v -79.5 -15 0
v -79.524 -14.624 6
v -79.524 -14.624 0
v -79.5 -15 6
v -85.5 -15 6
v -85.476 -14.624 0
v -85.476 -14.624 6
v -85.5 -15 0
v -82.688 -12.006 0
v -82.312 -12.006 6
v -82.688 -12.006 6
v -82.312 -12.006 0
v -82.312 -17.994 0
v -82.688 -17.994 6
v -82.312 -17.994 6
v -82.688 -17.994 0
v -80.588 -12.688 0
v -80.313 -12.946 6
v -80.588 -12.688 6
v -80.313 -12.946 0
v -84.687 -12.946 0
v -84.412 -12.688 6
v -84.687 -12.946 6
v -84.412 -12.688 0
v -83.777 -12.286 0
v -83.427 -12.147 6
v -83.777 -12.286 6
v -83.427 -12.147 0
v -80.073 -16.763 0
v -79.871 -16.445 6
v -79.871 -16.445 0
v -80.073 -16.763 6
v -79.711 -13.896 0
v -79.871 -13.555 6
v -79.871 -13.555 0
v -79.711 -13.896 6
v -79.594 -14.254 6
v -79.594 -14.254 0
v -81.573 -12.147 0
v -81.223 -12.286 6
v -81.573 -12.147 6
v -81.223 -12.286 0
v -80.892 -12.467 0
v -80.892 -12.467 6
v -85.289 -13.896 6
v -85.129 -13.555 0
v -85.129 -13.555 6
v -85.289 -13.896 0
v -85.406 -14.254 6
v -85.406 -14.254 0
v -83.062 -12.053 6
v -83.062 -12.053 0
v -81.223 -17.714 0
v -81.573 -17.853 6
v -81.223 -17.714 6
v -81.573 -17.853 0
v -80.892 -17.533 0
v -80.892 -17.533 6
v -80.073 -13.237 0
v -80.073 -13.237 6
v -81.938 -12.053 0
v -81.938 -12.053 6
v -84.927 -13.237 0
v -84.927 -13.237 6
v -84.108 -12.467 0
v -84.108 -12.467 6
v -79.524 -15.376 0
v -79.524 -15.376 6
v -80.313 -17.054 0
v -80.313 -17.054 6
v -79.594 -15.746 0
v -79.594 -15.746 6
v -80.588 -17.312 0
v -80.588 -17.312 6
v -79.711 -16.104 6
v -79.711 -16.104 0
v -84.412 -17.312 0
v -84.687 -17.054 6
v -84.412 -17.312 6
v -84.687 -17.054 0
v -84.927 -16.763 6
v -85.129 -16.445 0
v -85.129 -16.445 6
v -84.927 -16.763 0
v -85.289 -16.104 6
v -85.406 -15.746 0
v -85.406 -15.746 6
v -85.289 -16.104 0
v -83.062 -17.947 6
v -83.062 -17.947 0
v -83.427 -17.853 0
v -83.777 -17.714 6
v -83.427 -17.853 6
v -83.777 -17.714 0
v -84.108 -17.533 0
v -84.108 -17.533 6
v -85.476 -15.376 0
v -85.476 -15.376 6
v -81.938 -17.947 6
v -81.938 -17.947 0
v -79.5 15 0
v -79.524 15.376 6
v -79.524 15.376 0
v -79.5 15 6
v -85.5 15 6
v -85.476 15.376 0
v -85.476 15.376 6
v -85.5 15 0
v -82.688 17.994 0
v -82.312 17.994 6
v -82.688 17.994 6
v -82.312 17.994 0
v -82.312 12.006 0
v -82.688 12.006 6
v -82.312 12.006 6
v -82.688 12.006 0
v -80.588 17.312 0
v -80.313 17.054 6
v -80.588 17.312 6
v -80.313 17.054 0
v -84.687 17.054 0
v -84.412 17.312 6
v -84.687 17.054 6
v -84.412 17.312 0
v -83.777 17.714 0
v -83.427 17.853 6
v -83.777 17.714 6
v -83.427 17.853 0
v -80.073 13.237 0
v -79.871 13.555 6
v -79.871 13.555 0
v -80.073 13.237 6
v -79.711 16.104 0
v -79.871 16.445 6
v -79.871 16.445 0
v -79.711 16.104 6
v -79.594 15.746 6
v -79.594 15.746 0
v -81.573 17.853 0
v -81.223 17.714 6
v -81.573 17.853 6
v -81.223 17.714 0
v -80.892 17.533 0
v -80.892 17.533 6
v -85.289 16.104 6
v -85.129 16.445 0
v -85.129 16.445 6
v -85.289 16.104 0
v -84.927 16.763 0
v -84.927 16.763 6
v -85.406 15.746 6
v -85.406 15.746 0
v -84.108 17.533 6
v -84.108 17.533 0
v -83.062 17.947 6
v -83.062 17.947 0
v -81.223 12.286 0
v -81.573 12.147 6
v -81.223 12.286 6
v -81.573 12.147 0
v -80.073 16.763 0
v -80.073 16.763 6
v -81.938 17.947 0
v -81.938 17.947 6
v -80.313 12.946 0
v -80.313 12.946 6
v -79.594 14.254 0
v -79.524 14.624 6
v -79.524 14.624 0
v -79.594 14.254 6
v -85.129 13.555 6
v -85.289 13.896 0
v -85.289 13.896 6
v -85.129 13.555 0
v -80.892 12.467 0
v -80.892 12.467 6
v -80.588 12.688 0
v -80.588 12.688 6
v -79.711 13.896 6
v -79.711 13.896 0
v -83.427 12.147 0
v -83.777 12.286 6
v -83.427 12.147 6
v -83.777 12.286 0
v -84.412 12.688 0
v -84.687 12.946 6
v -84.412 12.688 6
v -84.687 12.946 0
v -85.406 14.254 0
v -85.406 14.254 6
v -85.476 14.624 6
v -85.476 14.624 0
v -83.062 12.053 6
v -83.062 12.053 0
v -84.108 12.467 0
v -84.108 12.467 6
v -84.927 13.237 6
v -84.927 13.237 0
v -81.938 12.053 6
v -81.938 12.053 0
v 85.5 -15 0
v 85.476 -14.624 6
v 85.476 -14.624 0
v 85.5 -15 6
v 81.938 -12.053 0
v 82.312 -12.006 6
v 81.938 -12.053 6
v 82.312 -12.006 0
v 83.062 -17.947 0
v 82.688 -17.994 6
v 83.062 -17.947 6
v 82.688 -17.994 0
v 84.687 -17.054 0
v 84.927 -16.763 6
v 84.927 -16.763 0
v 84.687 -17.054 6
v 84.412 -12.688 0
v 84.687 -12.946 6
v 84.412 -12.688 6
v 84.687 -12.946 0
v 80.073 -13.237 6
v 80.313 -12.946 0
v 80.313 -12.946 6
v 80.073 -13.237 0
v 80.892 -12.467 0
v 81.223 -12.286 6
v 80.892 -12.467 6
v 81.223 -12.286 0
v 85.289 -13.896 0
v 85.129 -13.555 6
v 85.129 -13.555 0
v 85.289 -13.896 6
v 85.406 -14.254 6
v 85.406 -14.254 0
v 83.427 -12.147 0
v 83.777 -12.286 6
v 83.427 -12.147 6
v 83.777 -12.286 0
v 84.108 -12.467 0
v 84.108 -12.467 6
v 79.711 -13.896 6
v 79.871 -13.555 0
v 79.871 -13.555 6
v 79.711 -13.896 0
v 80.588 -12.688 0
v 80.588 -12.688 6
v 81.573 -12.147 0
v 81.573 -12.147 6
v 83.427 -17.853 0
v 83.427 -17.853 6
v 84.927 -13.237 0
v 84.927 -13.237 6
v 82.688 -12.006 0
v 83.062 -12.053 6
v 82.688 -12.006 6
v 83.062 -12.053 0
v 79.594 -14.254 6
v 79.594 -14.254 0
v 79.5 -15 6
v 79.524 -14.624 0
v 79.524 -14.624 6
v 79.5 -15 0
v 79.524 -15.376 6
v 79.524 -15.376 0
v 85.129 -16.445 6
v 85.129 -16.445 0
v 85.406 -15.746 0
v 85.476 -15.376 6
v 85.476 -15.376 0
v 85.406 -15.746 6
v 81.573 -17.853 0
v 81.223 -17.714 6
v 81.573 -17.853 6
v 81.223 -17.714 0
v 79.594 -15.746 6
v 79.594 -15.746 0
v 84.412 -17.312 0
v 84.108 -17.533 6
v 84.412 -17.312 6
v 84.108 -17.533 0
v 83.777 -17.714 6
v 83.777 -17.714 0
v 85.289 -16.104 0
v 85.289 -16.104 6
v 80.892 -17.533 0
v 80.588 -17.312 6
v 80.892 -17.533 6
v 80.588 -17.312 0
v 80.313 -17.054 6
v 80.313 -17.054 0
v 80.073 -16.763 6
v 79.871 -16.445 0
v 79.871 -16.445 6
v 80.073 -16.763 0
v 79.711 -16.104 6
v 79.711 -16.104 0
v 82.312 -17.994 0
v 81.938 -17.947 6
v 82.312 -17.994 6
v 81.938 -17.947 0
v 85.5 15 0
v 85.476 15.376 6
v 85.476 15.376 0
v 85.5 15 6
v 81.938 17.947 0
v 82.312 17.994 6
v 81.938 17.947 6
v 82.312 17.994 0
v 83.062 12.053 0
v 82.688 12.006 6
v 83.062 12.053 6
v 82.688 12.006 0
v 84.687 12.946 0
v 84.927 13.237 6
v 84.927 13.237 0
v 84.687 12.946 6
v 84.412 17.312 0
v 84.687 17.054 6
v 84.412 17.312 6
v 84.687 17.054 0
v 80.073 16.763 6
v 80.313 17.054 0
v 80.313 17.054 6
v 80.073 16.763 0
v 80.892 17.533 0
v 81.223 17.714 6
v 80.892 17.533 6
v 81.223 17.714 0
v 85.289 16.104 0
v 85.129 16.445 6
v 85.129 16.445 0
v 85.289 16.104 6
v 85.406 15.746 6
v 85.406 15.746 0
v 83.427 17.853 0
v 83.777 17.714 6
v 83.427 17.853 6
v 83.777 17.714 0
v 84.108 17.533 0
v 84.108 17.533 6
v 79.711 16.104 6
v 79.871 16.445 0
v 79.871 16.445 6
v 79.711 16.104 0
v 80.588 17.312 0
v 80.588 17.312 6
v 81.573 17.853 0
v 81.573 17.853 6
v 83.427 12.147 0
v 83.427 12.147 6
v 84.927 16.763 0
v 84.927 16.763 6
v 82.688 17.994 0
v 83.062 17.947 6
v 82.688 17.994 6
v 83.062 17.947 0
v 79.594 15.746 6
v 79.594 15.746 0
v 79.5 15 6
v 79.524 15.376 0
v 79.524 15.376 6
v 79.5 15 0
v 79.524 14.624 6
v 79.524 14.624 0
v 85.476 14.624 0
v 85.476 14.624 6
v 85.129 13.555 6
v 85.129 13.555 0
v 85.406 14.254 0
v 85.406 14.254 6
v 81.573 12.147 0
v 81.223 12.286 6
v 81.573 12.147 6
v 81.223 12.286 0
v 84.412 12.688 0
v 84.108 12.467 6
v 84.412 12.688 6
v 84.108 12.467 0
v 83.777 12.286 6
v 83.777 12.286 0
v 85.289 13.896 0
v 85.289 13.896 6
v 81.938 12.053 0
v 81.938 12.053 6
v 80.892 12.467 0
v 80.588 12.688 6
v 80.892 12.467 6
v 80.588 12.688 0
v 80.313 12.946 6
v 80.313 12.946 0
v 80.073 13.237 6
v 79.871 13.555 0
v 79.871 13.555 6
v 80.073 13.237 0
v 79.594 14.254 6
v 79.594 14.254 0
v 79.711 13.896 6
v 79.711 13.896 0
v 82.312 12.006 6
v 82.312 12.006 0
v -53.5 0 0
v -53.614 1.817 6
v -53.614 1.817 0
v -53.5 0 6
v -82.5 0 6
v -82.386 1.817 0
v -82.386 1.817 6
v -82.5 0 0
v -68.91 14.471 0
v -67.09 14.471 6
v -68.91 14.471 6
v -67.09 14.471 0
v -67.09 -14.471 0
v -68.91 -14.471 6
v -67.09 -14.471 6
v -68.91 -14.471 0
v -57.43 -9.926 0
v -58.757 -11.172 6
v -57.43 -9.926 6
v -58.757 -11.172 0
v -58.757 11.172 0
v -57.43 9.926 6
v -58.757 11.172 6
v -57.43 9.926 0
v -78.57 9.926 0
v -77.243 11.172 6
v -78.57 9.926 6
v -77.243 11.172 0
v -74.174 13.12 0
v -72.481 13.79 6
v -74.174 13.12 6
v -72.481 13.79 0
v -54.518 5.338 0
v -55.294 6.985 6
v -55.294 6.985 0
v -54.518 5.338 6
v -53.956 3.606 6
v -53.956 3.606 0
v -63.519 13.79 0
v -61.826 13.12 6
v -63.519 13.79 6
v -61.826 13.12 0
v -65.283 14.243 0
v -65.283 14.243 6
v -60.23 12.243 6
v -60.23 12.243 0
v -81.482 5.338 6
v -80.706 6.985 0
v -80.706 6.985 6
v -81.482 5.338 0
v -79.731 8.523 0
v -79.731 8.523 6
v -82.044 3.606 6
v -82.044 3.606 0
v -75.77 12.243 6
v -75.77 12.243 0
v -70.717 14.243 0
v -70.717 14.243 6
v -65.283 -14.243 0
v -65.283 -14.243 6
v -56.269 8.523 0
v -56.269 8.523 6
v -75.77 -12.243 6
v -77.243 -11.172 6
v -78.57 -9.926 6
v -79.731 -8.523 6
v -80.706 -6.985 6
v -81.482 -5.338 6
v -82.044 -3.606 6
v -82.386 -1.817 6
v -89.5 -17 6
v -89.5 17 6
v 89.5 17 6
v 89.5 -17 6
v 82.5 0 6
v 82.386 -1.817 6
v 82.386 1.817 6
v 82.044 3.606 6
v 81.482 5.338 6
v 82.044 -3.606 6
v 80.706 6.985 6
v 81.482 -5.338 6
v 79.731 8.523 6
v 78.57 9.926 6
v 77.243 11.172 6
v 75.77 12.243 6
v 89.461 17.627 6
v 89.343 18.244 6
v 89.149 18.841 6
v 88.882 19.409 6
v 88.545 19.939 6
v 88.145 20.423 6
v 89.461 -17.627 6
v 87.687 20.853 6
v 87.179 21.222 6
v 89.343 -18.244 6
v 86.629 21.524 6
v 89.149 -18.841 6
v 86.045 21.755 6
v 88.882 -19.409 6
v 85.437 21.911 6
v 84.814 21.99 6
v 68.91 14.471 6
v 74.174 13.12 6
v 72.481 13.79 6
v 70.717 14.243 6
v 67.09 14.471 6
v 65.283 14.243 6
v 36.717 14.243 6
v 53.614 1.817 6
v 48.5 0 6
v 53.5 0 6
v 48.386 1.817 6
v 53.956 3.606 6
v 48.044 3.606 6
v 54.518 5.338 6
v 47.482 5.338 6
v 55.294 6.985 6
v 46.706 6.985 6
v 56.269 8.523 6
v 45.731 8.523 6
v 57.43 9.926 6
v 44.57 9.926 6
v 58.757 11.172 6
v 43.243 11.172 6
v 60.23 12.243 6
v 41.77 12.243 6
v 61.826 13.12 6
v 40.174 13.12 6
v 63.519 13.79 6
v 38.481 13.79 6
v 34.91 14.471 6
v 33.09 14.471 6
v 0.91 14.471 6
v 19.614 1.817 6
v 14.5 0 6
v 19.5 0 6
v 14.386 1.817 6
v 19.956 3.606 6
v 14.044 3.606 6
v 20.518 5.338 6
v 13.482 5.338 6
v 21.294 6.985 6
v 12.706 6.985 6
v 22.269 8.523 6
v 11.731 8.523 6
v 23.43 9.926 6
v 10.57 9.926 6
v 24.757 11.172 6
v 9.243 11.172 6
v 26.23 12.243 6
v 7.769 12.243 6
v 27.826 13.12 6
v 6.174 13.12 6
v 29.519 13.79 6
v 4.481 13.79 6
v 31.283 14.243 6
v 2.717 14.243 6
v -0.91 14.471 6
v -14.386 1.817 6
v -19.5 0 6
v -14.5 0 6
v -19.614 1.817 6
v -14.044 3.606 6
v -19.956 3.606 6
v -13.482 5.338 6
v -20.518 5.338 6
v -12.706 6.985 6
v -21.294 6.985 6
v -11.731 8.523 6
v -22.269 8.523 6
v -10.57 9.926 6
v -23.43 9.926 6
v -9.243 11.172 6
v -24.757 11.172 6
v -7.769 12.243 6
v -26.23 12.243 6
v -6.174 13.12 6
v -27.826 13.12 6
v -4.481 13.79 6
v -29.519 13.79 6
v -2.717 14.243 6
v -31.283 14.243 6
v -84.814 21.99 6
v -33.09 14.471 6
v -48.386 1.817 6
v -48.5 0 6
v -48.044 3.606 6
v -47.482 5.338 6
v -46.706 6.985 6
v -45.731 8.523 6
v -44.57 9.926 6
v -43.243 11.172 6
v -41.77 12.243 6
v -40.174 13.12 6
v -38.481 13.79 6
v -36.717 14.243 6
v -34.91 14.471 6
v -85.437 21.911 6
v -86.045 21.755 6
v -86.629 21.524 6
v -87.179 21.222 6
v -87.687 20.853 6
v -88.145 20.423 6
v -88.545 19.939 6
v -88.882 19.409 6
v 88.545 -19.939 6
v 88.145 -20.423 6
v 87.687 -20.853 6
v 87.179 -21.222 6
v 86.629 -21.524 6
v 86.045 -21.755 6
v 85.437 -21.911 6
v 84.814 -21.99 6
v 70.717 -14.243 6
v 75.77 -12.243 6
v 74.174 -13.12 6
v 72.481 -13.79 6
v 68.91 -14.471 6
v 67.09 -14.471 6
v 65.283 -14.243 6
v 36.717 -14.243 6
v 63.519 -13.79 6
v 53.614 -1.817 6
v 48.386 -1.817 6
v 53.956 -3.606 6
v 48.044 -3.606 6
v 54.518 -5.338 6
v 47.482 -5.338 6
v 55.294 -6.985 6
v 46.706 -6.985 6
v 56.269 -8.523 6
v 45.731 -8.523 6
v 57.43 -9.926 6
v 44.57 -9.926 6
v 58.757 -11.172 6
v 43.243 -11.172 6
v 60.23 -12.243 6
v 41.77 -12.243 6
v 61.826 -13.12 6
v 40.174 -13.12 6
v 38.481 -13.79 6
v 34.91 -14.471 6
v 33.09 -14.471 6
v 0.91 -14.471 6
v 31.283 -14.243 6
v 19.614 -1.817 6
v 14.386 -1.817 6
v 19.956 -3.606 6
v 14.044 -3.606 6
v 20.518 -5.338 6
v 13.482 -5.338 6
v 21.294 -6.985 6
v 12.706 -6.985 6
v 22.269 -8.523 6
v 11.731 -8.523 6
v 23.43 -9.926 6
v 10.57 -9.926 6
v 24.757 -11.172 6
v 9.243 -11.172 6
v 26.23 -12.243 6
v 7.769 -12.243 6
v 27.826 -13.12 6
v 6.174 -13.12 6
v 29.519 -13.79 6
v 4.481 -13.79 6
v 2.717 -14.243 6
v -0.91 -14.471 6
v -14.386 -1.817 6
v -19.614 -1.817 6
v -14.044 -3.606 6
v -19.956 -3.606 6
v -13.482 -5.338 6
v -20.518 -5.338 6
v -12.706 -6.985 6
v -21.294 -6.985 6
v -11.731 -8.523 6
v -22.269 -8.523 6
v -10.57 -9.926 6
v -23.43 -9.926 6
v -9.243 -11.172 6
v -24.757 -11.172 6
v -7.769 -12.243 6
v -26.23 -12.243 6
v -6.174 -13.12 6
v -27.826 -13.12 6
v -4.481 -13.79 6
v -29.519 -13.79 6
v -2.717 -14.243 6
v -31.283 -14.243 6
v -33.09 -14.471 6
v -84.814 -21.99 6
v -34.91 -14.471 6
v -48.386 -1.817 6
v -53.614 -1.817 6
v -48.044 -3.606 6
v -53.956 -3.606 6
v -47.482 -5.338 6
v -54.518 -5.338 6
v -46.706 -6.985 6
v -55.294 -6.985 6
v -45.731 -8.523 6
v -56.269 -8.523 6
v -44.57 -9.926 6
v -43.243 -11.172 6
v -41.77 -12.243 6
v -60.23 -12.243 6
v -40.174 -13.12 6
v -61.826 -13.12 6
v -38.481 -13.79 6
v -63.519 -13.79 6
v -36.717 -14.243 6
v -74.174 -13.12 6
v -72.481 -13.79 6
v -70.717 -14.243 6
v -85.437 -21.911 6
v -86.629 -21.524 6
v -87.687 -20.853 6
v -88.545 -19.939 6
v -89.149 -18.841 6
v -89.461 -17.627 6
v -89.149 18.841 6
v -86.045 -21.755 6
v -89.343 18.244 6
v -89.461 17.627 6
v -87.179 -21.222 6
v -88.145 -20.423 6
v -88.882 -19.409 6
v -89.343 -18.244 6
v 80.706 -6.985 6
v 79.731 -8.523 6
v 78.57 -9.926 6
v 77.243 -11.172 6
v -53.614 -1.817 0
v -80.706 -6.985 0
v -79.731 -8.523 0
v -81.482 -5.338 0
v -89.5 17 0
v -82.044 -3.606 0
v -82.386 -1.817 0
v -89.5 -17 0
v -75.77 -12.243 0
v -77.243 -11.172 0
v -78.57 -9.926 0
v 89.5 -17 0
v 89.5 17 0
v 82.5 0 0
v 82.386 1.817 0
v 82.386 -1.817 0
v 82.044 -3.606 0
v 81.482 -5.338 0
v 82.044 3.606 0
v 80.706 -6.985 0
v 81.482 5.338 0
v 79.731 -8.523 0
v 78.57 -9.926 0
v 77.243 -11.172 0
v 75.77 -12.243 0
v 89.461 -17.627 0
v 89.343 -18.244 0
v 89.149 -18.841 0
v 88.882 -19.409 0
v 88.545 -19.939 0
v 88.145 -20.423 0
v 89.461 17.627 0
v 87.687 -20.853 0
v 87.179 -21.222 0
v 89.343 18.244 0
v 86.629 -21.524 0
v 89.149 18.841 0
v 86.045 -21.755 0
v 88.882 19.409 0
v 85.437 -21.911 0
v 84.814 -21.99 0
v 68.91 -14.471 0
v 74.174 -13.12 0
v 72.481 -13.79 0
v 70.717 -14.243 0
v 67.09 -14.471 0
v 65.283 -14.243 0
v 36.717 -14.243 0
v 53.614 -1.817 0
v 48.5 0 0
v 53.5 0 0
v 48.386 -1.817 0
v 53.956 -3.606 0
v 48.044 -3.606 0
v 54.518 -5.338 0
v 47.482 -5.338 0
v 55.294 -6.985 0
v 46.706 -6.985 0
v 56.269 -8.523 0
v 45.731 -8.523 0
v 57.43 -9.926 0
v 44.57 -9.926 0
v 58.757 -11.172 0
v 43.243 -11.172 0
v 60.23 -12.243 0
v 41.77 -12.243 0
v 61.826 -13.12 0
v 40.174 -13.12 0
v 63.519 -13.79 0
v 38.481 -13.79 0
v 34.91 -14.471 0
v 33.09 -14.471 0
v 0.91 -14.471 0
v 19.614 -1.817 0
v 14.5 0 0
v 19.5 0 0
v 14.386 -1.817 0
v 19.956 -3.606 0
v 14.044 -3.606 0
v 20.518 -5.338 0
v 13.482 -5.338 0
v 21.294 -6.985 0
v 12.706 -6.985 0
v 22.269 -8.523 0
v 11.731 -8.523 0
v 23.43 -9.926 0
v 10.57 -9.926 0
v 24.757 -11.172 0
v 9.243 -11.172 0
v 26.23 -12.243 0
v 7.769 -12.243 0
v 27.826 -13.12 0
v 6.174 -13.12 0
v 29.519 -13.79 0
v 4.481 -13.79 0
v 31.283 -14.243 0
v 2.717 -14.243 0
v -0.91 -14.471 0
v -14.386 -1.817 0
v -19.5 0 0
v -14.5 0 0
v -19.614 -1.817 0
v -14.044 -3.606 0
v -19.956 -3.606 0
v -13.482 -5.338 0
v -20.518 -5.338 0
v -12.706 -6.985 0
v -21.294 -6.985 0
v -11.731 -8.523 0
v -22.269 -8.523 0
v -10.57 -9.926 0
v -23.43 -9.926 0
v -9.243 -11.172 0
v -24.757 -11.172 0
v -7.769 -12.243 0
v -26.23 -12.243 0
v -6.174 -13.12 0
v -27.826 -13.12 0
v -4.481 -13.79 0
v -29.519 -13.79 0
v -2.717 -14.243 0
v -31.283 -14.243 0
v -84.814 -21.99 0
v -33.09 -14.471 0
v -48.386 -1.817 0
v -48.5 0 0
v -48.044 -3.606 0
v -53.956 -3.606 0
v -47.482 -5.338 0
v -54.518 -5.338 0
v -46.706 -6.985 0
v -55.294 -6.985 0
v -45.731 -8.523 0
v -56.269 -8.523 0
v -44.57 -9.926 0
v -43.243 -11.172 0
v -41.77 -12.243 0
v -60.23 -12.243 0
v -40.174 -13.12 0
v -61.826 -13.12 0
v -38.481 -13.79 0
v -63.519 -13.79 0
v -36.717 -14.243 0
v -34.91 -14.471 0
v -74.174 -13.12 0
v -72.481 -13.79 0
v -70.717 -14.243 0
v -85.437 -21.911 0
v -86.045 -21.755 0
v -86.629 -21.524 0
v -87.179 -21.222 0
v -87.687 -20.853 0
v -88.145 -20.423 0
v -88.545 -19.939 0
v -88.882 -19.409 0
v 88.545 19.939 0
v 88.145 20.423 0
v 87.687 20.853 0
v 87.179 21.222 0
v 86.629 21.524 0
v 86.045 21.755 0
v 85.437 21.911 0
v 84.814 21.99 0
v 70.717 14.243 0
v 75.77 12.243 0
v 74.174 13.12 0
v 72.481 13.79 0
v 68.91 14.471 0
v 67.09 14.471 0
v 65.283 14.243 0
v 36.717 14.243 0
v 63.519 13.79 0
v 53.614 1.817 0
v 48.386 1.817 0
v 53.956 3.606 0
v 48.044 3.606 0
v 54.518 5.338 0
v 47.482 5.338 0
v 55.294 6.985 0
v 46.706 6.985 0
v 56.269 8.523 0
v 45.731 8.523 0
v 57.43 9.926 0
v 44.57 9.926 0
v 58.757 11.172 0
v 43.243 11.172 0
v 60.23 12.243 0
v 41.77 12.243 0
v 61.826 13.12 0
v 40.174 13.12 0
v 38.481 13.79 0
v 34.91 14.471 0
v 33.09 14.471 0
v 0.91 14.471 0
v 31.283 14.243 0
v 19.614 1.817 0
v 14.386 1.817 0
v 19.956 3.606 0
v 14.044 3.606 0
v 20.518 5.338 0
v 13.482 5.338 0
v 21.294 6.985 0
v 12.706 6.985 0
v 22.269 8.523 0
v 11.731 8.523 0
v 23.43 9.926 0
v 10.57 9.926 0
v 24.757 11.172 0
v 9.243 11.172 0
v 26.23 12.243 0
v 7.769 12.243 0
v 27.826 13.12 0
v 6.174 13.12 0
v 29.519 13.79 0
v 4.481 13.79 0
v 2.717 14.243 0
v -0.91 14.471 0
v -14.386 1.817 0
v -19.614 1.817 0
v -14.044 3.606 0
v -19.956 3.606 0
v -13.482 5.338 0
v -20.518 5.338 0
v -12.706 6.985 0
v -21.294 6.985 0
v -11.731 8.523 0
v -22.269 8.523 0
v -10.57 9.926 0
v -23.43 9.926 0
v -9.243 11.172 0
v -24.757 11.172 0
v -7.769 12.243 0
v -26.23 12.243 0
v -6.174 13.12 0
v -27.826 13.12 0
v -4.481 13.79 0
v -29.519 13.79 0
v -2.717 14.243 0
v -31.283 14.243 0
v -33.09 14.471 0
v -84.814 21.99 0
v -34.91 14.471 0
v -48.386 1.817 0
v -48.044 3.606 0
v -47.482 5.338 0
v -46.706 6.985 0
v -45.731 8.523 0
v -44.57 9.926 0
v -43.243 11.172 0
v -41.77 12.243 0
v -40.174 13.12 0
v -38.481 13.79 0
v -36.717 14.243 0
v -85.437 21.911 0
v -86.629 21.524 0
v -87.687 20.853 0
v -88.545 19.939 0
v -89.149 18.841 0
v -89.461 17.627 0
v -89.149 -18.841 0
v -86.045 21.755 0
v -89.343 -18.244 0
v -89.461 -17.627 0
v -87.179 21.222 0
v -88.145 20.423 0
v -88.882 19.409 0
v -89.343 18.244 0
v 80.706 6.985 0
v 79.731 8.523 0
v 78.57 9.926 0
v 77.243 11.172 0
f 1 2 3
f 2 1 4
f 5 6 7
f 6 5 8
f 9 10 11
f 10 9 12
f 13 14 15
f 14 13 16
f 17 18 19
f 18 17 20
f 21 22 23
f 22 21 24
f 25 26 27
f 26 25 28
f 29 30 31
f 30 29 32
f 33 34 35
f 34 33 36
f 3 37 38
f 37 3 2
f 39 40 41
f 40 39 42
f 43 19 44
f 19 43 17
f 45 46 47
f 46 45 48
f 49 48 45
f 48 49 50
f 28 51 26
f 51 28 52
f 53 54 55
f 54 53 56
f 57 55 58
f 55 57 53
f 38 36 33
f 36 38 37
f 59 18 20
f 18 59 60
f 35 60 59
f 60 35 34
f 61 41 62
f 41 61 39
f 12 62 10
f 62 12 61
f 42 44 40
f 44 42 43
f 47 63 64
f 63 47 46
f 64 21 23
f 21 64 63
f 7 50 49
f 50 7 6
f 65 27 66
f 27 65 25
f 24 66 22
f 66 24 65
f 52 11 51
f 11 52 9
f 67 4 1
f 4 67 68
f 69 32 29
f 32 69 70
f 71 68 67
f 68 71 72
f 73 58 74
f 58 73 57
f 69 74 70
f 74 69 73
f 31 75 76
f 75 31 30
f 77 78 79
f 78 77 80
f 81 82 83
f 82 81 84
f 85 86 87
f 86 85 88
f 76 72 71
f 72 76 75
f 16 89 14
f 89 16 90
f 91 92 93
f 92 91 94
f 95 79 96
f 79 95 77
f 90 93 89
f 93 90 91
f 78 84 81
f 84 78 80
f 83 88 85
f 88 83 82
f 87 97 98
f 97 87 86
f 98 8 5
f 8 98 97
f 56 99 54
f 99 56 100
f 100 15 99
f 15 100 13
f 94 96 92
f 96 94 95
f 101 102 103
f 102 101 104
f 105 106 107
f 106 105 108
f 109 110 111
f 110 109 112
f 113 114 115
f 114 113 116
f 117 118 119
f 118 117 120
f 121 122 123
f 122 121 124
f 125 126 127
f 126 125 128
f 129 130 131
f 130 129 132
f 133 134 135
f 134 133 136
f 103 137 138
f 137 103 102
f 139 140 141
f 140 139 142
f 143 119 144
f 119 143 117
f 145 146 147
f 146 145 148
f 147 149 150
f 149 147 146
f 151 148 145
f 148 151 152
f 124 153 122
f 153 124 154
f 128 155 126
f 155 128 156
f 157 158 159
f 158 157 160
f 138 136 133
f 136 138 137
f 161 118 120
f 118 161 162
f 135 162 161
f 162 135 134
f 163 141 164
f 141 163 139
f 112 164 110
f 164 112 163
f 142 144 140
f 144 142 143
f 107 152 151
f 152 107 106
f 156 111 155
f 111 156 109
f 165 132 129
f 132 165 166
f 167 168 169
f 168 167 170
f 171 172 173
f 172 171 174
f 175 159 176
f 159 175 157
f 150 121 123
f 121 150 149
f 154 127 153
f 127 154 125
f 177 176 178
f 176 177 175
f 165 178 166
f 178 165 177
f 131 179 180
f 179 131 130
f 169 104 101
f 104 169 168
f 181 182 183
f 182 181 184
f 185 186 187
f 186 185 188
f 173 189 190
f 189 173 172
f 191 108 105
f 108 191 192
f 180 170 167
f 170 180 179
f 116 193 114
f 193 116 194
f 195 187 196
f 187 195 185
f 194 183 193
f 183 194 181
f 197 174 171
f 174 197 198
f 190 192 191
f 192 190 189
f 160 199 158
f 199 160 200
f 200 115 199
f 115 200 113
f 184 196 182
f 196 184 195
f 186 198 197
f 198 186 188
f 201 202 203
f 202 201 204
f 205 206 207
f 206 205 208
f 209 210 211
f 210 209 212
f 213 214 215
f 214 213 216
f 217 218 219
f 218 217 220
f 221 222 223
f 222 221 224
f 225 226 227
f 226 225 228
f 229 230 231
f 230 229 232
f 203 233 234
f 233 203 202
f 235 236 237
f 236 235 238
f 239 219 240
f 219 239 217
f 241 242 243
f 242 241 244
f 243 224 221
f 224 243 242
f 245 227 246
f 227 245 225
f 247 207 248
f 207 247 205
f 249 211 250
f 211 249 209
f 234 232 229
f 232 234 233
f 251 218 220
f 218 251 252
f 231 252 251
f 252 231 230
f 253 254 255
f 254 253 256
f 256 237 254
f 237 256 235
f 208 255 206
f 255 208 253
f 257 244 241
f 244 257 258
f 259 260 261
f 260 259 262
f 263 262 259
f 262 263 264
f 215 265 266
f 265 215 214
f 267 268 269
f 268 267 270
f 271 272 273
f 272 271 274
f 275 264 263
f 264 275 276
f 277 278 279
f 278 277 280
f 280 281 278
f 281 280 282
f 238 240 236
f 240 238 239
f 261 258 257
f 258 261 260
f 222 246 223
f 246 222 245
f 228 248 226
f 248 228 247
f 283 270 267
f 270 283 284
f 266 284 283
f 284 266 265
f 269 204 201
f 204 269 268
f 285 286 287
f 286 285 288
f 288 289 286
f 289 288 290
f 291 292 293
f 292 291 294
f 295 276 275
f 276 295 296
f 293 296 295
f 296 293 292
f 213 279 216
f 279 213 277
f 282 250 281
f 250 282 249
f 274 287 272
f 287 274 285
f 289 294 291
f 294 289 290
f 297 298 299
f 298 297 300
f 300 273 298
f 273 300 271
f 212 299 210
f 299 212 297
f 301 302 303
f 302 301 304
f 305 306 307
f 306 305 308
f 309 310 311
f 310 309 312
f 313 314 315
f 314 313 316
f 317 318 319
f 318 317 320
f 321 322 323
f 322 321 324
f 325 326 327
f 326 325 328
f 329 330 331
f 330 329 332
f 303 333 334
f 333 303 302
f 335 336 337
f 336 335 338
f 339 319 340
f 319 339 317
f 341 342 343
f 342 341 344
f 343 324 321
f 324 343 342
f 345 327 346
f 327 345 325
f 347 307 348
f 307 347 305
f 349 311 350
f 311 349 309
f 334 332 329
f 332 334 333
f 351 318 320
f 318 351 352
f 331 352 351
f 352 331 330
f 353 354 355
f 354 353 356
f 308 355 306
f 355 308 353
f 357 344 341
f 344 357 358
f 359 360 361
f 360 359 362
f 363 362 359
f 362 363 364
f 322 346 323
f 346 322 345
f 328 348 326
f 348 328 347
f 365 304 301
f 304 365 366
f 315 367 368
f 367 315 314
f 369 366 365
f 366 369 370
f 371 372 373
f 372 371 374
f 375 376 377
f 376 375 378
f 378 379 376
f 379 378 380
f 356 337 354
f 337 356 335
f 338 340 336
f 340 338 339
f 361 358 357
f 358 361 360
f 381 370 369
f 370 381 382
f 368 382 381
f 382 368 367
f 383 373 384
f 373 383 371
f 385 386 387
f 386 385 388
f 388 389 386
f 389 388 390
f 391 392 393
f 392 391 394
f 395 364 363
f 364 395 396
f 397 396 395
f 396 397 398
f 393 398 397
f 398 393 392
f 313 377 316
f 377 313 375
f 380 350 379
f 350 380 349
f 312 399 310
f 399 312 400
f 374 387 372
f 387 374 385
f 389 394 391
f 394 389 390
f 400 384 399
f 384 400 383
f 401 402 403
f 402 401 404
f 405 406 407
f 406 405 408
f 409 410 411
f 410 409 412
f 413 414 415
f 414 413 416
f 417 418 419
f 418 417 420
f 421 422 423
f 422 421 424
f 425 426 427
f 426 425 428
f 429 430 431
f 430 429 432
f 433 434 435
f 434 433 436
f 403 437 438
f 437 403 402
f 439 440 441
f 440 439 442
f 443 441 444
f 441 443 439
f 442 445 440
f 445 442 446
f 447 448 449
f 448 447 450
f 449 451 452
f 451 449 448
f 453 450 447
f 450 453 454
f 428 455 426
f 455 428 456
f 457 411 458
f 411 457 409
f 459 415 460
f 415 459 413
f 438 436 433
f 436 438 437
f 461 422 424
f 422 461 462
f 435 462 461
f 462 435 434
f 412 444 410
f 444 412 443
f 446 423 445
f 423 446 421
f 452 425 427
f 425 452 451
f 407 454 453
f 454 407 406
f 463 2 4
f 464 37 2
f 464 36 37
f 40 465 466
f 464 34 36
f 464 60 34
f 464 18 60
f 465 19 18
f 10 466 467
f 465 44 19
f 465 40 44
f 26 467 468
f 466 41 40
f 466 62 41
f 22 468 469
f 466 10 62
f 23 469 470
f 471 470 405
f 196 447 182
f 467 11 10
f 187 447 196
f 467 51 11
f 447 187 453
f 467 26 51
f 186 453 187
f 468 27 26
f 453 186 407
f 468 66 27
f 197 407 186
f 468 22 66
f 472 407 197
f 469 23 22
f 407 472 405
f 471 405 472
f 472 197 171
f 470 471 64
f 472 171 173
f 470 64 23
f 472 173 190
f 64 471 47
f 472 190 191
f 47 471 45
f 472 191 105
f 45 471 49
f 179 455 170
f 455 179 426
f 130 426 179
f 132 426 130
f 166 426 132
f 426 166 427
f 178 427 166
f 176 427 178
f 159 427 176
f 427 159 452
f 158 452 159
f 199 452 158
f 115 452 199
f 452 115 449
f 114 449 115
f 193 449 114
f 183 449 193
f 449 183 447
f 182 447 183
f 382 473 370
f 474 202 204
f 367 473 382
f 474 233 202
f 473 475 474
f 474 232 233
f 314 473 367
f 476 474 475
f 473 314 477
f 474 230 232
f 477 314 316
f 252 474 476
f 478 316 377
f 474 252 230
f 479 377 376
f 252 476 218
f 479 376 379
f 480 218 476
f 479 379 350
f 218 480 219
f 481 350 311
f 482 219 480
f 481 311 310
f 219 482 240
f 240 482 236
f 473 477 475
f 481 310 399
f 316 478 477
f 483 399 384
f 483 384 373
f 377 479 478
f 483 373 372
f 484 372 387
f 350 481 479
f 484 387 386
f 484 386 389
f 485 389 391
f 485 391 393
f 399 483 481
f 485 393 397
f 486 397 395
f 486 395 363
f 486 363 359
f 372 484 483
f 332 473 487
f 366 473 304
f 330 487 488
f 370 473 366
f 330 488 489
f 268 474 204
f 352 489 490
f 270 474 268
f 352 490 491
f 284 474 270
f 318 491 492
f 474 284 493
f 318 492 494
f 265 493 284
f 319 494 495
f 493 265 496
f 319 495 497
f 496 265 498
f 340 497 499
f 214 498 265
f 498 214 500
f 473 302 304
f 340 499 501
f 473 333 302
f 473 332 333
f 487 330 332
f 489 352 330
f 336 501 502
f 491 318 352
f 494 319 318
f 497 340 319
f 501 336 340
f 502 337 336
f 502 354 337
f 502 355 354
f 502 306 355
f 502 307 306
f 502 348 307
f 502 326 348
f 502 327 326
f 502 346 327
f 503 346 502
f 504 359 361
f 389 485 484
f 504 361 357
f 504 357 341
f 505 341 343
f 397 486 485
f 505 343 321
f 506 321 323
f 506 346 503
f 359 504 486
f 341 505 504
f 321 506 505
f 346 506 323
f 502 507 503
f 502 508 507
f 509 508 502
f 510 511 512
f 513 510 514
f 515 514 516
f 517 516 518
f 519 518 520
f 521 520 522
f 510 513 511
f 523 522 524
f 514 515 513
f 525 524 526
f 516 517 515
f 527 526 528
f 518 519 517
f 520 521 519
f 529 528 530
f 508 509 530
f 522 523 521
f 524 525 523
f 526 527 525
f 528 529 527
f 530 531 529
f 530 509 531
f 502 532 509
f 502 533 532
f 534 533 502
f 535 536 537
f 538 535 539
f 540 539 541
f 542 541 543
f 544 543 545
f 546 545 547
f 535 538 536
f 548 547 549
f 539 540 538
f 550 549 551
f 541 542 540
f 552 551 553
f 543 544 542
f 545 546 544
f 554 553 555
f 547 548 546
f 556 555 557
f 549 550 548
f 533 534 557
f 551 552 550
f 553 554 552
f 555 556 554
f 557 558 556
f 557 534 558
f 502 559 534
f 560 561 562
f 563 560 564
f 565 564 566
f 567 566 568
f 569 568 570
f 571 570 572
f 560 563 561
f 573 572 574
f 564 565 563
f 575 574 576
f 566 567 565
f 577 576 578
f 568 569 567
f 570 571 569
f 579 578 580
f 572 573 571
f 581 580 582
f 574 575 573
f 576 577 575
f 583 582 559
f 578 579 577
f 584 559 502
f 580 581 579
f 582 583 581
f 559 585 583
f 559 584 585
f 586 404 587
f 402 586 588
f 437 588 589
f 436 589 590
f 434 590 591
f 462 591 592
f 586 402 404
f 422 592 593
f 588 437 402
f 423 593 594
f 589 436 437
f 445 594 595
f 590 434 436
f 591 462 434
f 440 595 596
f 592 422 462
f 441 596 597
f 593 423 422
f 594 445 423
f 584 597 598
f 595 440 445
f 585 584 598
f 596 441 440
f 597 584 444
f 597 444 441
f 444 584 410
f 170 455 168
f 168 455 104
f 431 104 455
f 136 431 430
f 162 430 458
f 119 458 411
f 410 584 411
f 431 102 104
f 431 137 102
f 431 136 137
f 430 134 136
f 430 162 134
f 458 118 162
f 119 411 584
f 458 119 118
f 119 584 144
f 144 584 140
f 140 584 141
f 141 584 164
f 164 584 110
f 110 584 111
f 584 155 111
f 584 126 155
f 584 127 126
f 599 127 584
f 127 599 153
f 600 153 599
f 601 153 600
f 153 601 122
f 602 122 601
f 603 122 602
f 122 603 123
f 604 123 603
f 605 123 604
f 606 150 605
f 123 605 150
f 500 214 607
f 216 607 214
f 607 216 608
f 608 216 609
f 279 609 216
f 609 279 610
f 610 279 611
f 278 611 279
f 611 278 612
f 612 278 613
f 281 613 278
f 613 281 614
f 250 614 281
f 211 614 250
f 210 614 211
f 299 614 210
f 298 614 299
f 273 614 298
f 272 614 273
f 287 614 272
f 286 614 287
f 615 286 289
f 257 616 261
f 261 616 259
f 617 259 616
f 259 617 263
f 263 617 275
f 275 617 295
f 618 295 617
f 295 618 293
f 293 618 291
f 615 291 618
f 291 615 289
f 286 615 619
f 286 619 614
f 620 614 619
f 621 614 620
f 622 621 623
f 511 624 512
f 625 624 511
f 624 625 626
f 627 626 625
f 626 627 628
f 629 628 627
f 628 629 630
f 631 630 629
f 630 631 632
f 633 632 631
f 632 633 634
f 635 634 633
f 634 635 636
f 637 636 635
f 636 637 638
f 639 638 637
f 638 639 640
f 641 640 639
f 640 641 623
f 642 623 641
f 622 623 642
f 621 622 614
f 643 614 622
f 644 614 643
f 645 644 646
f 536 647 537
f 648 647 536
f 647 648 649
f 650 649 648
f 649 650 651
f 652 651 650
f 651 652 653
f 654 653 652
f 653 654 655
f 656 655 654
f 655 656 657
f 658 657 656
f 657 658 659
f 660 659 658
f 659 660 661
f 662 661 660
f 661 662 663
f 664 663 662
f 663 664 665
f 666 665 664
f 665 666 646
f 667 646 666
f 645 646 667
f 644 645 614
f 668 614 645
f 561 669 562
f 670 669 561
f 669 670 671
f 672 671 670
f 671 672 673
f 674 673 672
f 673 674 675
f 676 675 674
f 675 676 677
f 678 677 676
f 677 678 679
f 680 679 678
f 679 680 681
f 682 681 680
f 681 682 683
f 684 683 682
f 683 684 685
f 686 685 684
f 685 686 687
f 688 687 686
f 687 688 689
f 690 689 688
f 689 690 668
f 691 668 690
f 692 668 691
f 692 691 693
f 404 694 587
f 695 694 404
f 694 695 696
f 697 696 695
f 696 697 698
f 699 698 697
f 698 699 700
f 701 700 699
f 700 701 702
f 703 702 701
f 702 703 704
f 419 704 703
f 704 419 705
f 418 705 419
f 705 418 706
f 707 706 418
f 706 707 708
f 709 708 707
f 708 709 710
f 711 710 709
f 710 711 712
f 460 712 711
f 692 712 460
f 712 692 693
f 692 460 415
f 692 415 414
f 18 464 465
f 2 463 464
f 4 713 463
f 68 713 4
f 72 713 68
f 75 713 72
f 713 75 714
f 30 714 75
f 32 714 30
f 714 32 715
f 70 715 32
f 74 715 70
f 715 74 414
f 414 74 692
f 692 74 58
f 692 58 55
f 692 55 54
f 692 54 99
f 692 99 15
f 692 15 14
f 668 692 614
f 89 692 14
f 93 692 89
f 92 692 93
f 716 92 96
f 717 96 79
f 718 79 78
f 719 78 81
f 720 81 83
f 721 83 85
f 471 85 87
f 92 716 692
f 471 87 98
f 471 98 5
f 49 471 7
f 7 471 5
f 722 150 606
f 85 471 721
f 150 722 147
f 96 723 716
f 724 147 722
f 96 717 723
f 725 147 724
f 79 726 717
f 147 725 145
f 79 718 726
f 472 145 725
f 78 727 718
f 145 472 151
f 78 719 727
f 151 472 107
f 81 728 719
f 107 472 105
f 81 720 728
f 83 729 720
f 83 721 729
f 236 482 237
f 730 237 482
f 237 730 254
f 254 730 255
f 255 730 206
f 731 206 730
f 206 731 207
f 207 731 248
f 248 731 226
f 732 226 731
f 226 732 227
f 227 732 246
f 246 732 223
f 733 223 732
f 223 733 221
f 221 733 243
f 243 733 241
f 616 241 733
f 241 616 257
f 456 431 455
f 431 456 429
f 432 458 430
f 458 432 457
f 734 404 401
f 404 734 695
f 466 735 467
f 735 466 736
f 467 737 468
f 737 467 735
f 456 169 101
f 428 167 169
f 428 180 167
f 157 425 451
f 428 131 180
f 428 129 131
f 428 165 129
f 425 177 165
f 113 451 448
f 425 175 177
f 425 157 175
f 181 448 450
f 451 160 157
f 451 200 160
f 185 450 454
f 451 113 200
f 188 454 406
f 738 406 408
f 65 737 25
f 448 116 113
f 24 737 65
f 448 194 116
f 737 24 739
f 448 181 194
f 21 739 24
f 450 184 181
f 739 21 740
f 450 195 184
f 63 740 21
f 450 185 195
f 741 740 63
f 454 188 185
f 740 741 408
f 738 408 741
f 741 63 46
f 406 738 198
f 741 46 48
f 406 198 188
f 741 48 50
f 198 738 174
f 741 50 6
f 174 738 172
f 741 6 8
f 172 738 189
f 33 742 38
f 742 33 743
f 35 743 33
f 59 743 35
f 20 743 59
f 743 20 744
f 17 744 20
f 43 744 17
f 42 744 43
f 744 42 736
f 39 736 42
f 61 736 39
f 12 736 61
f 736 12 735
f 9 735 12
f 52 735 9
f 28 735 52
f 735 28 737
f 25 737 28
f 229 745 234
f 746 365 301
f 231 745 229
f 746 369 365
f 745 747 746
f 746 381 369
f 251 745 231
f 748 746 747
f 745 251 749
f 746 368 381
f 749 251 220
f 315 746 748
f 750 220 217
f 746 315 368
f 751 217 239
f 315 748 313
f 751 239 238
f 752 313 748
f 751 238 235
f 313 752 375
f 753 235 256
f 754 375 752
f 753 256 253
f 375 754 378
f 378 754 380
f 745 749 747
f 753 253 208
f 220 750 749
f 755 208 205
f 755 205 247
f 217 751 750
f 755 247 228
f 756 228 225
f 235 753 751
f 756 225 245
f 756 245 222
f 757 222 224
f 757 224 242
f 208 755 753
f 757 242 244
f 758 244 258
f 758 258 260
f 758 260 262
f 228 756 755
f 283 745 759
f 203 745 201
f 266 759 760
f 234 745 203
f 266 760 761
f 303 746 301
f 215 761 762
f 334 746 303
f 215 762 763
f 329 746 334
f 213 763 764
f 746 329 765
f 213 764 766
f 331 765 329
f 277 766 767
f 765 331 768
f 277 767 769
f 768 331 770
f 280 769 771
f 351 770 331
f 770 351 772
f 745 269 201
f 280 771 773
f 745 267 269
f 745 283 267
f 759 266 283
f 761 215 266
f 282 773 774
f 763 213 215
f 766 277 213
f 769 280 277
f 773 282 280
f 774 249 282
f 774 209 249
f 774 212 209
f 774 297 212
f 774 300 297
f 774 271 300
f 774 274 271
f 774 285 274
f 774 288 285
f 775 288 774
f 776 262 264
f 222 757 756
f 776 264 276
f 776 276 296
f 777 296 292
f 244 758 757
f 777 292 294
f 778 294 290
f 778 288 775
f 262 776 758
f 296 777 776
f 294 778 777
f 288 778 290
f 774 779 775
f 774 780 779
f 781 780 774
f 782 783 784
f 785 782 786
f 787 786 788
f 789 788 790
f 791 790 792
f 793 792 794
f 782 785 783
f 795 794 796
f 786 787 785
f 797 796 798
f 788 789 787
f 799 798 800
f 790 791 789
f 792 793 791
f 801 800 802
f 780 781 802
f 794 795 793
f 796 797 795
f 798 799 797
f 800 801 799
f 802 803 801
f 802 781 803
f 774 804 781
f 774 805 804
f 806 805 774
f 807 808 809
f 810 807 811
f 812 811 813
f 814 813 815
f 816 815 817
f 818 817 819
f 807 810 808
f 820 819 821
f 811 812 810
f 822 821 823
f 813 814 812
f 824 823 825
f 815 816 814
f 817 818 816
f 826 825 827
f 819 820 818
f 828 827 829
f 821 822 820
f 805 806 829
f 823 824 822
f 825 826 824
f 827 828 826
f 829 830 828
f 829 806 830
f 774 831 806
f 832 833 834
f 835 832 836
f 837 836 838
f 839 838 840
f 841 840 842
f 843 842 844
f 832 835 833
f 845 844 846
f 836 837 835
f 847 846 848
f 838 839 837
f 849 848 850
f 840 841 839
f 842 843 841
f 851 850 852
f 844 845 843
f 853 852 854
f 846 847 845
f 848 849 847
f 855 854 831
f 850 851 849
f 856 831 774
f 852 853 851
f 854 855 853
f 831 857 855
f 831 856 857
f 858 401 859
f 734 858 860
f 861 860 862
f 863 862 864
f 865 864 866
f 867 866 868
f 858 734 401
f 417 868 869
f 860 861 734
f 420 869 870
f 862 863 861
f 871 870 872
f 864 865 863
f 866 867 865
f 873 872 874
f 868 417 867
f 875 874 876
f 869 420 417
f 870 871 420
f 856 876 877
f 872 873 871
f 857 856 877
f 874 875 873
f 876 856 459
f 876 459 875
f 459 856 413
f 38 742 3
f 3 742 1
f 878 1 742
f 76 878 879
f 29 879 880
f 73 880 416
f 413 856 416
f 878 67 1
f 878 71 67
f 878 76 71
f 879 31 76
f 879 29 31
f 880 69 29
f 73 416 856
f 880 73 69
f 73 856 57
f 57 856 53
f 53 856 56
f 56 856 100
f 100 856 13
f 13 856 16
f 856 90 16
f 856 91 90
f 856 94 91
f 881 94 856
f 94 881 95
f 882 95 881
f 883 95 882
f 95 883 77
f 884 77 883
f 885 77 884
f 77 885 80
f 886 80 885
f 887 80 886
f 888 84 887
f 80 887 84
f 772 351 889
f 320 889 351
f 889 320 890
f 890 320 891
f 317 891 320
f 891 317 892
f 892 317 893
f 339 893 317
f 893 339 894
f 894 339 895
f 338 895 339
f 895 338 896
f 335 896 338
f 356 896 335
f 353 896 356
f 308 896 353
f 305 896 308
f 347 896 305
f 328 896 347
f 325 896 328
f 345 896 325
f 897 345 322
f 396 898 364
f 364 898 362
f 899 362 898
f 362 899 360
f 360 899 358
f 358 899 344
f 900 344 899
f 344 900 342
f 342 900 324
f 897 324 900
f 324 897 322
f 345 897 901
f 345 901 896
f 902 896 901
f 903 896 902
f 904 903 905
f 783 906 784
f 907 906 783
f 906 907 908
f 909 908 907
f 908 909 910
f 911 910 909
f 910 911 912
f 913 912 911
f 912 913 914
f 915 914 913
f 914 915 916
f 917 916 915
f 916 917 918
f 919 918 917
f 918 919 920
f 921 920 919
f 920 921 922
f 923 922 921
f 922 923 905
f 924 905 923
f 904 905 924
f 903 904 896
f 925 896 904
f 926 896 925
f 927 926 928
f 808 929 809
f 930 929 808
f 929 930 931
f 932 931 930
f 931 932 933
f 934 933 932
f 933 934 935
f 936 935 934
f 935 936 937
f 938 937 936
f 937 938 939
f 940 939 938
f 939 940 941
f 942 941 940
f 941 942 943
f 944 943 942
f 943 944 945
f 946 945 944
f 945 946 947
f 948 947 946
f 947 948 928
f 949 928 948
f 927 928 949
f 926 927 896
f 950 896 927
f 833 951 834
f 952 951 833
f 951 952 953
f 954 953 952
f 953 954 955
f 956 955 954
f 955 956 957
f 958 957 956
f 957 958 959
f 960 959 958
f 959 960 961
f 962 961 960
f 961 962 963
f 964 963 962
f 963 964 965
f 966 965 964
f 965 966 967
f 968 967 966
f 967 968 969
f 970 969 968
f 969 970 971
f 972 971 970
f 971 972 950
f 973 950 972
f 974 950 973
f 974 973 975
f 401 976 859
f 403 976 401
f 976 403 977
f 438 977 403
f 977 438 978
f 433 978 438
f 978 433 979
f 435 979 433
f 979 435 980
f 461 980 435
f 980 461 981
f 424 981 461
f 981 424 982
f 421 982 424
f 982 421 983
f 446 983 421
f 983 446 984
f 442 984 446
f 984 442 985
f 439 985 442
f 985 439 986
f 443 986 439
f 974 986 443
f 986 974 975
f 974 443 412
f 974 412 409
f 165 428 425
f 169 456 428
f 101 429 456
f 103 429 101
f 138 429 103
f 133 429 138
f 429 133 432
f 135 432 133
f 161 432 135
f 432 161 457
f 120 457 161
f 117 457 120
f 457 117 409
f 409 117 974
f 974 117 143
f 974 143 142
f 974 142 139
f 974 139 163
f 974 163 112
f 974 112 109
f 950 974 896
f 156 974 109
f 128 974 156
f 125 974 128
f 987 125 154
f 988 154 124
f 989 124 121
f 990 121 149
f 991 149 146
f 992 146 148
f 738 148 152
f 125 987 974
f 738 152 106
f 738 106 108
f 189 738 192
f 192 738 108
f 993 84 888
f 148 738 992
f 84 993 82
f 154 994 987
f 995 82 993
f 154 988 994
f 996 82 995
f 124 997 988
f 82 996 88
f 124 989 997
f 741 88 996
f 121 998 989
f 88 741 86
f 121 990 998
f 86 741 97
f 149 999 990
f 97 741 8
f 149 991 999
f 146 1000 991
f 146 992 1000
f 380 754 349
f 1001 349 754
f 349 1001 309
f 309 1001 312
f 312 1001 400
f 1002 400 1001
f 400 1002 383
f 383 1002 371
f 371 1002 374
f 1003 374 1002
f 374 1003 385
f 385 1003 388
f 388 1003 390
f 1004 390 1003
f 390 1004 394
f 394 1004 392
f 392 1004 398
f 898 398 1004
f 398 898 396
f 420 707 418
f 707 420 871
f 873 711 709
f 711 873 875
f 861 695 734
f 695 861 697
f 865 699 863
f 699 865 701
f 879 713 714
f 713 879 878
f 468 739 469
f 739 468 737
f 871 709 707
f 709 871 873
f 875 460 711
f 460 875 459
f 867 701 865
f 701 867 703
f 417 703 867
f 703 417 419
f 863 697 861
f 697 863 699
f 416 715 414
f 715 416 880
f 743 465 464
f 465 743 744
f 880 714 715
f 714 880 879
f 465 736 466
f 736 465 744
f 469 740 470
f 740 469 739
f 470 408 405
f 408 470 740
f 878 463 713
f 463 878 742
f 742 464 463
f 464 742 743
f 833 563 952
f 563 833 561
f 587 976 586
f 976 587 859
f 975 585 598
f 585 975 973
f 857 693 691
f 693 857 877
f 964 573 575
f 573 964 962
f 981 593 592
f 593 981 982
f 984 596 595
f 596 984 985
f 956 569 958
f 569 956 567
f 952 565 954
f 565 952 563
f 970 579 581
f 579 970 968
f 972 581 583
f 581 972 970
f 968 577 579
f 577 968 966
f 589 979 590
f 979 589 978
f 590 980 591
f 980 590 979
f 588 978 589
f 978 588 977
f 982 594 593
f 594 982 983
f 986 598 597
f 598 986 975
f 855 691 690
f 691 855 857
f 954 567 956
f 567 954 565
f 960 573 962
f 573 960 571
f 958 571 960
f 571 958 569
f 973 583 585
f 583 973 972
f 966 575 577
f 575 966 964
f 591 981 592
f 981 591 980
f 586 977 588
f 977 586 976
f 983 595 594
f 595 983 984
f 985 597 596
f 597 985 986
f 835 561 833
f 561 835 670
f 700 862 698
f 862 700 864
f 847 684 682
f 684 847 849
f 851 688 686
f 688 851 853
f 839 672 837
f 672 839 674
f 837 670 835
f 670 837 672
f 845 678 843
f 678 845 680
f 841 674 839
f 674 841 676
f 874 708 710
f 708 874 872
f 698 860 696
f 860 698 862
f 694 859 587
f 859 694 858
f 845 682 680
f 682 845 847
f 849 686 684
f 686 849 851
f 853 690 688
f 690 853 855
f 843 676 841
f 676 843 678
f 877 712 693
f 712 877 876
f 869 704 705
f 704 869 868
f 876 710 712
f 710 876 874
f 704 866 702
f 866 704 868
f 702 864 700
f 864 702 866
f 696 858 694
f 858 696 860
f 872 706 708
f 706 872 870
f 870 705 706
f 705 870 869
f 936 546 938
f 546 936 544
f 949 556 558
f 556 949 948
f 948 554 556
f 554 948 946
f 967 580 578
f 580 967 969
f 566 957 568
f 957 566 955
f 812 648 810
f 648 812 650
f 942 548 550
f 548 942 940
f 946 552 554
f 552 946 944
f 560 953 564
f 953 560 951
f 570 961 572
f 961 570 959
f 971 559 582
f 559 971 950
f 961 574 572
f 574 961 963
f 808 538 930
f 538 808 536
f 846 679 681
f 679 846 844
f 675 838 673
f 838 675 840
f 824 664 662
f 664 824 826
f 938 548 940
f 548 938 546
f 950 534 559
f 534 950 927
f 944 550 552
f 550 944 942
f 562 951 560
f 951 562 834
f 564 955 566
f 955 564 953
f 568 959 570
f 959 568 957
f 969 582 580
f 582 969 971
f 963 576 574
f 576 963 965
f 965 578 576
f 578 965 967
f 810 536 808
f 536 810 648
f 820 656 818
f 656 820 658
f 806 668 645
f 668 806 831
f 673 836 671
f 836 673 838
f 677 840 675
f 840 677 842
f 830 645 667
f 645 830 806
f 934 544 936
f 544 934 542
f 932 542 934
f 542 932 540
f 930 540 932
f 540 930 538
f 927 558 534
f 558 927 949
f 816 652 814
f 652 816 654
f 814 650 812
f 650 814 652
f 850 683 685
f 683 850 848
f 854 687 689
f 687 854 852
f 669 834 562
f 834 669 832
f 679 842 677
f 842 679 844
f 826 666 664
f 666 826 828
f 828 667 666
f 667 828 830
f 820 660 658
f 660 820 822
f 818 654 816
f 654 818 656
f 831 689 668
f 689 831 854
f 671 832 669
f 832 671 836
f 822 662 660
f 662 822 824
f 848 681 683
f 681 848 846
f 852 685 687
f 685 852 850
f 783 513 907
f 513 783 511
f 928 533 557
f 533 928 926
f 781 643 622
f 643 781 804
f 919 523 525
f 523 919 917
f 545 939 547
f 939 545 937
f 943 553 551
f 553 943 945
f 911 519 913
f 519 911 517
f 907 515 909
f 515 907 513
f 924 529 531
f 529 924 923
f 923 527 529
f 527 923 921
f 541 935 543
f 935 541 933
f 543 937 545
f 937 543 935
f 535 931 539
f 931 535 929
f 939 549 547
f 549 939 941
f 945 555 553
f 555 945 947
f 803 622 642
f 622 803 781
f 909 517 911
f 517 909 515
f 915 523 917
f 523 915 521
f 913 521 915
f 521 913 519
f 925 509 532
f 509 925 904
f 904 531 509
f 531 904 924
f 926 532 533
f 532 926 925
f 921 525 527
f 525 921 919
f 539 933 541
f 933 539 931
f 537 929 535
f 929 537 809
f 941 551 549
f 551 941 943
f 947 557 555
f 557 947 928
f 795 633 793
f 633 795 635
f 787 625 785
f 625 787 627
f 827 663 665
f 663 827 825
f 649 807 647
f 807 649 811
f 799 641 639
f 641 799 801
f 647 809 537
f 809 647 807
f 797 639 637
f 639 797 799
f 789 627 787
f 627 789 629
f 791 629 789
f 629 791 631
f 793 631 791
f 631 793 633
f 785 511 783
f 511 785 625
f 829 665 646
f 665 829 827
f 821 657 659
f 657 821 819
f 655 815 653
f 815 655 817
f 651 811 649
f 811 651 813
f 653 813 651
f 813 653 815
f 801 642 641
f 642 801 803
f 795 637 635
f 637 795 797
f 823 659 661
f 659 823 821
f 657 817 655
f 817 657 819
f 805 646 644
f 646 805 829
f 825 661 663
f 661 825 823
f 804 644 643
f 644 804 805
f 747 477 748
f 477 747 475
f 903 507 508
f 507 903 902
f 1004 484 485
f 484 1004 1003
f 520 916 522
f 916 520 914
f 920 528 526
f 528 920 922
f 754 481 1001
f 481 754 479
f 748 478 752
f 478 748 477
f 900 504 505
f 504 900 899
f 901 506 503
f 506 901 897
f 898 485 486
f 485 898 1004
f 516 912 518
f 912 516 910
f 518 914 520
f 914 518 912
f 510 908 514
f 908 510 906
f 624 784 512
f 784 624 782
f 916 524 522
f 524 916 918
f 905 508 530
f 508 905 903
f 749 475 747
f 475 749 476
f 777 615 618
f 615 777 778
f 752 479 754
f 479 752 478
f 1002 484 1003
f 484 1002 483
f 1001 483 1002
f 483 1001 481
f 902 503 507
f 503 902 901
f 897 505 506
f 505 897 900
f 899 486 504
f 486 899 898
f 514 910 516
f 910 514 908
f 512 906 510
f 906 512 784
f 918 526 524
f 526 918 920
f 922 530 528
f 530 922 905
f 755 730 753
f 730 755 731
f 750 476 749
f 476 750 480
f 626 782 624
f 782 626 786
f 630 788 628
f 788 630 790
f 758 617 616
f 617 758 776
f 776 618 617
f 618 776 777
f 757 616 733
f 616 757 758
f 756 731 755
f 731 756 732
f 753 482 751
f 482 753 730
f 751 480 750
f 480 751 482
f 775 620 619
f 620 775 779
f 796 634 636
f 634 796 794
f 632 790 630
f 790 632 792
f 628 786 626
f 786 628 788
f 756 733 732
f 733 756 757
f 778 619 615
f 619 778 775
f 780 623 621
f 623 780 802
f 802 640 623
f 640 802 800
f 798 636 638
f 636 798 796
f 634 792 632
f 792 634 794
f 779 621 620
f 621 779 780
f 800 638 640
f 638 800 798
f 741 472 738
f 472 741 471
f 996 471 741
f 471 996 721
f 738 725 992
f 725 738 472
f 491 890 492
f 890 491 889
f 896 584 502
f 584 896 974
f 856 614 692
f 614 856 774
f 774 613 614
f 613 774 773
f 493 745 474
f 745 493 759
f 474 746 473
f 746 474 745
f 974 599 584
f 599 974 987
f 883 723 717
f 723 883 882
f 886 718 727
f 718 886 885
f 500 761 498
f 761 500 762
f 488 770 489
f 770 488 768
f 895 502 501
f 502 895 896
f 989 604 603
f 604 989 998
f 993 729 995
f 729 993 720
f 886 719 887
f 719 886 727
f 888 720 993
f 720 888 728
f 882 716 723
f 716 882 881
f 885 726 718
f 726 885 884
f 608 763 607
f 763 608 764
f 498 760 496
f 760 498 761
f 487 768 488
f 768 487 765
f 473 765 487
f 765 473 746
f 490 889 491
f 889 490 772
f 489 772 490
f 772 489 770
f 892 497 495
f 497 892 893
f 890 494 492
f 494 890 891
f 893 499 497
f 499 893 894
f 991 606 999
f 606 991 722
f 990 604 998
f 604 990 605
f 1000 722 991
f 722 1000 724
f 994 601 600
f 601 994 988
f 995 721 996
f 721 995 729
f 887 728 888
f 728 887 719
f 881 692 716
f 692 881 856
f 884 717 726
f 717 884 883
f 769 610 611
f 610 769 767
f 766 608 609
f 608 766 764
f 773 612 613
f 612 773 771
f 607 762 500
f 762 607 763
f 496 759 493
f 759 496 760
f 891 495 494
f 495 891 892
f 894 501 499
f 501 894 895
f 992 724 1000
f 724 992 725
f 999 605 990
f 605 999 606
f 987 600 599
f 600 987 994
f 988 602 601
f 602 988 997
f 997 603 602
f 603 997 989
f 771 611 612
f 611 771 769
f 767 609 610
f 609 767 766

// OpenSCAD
$fn = 50;


difference() {
	union() {
		hull() {
			translate(v = [-84.5000000000, 17.0000000000, 0]) {
				cylinder(h = 6, r = 5);
			}
			translate(v = [84.5000000000, 17.0000000000, 0]) {
				cylinder(h = 6, r = 5);
			}
			translate(v = [-84.5000000000, -17.0000000000, 0]) {
				cylinder(h = 6, r = 5);
			}
			translate(v = [84.5000000000, -17.0000000000, 0]) {
				cylinder(h = 6, r = 5);
			}
		}
	}
	union() {
		#translate(v = [-82.5000000000, -15.0000000000, -100.0000000000]) {
			cylinder(h = 200, r = 3.0000000000);
		}
		#translate(v = [-82.5000000000, 15.0000000000, -100.0000000000]) {
			cylinder(h = 200, r = 3.0000000000);
		}
		#translate(v = [82.5000000000, -15.0000000000, -100.0000000000]) {
			cylinder(h = 200, r = 3.0000000000);
		}
		#translate(v = [82.5000000000, 15.0000000000, -100.0000000000]) {
			cylinder(h = 200, r = 3.0000000000);
		}
		#translate(v = [-68.0000000000, 0, 0]) {
			cylinder(h = 6, r = 14.5000000000);
		}
		#translate(v = [-34.0000000000, 0, 0]) {
			cylinder(h = 6, r = 14.5000000000);
		}
		#cylinder(h = 6, r = 14.5000000000);
		#translate(v = [34.0000000000, 0, 0]) {
			cylinder(h = 6, r = 14.5000000000);
		}
		#translate(v = [68.0000000000, 0, 0]) {
			cylinder(h = 6, r = 14.5000000000);
		}
	}
}
